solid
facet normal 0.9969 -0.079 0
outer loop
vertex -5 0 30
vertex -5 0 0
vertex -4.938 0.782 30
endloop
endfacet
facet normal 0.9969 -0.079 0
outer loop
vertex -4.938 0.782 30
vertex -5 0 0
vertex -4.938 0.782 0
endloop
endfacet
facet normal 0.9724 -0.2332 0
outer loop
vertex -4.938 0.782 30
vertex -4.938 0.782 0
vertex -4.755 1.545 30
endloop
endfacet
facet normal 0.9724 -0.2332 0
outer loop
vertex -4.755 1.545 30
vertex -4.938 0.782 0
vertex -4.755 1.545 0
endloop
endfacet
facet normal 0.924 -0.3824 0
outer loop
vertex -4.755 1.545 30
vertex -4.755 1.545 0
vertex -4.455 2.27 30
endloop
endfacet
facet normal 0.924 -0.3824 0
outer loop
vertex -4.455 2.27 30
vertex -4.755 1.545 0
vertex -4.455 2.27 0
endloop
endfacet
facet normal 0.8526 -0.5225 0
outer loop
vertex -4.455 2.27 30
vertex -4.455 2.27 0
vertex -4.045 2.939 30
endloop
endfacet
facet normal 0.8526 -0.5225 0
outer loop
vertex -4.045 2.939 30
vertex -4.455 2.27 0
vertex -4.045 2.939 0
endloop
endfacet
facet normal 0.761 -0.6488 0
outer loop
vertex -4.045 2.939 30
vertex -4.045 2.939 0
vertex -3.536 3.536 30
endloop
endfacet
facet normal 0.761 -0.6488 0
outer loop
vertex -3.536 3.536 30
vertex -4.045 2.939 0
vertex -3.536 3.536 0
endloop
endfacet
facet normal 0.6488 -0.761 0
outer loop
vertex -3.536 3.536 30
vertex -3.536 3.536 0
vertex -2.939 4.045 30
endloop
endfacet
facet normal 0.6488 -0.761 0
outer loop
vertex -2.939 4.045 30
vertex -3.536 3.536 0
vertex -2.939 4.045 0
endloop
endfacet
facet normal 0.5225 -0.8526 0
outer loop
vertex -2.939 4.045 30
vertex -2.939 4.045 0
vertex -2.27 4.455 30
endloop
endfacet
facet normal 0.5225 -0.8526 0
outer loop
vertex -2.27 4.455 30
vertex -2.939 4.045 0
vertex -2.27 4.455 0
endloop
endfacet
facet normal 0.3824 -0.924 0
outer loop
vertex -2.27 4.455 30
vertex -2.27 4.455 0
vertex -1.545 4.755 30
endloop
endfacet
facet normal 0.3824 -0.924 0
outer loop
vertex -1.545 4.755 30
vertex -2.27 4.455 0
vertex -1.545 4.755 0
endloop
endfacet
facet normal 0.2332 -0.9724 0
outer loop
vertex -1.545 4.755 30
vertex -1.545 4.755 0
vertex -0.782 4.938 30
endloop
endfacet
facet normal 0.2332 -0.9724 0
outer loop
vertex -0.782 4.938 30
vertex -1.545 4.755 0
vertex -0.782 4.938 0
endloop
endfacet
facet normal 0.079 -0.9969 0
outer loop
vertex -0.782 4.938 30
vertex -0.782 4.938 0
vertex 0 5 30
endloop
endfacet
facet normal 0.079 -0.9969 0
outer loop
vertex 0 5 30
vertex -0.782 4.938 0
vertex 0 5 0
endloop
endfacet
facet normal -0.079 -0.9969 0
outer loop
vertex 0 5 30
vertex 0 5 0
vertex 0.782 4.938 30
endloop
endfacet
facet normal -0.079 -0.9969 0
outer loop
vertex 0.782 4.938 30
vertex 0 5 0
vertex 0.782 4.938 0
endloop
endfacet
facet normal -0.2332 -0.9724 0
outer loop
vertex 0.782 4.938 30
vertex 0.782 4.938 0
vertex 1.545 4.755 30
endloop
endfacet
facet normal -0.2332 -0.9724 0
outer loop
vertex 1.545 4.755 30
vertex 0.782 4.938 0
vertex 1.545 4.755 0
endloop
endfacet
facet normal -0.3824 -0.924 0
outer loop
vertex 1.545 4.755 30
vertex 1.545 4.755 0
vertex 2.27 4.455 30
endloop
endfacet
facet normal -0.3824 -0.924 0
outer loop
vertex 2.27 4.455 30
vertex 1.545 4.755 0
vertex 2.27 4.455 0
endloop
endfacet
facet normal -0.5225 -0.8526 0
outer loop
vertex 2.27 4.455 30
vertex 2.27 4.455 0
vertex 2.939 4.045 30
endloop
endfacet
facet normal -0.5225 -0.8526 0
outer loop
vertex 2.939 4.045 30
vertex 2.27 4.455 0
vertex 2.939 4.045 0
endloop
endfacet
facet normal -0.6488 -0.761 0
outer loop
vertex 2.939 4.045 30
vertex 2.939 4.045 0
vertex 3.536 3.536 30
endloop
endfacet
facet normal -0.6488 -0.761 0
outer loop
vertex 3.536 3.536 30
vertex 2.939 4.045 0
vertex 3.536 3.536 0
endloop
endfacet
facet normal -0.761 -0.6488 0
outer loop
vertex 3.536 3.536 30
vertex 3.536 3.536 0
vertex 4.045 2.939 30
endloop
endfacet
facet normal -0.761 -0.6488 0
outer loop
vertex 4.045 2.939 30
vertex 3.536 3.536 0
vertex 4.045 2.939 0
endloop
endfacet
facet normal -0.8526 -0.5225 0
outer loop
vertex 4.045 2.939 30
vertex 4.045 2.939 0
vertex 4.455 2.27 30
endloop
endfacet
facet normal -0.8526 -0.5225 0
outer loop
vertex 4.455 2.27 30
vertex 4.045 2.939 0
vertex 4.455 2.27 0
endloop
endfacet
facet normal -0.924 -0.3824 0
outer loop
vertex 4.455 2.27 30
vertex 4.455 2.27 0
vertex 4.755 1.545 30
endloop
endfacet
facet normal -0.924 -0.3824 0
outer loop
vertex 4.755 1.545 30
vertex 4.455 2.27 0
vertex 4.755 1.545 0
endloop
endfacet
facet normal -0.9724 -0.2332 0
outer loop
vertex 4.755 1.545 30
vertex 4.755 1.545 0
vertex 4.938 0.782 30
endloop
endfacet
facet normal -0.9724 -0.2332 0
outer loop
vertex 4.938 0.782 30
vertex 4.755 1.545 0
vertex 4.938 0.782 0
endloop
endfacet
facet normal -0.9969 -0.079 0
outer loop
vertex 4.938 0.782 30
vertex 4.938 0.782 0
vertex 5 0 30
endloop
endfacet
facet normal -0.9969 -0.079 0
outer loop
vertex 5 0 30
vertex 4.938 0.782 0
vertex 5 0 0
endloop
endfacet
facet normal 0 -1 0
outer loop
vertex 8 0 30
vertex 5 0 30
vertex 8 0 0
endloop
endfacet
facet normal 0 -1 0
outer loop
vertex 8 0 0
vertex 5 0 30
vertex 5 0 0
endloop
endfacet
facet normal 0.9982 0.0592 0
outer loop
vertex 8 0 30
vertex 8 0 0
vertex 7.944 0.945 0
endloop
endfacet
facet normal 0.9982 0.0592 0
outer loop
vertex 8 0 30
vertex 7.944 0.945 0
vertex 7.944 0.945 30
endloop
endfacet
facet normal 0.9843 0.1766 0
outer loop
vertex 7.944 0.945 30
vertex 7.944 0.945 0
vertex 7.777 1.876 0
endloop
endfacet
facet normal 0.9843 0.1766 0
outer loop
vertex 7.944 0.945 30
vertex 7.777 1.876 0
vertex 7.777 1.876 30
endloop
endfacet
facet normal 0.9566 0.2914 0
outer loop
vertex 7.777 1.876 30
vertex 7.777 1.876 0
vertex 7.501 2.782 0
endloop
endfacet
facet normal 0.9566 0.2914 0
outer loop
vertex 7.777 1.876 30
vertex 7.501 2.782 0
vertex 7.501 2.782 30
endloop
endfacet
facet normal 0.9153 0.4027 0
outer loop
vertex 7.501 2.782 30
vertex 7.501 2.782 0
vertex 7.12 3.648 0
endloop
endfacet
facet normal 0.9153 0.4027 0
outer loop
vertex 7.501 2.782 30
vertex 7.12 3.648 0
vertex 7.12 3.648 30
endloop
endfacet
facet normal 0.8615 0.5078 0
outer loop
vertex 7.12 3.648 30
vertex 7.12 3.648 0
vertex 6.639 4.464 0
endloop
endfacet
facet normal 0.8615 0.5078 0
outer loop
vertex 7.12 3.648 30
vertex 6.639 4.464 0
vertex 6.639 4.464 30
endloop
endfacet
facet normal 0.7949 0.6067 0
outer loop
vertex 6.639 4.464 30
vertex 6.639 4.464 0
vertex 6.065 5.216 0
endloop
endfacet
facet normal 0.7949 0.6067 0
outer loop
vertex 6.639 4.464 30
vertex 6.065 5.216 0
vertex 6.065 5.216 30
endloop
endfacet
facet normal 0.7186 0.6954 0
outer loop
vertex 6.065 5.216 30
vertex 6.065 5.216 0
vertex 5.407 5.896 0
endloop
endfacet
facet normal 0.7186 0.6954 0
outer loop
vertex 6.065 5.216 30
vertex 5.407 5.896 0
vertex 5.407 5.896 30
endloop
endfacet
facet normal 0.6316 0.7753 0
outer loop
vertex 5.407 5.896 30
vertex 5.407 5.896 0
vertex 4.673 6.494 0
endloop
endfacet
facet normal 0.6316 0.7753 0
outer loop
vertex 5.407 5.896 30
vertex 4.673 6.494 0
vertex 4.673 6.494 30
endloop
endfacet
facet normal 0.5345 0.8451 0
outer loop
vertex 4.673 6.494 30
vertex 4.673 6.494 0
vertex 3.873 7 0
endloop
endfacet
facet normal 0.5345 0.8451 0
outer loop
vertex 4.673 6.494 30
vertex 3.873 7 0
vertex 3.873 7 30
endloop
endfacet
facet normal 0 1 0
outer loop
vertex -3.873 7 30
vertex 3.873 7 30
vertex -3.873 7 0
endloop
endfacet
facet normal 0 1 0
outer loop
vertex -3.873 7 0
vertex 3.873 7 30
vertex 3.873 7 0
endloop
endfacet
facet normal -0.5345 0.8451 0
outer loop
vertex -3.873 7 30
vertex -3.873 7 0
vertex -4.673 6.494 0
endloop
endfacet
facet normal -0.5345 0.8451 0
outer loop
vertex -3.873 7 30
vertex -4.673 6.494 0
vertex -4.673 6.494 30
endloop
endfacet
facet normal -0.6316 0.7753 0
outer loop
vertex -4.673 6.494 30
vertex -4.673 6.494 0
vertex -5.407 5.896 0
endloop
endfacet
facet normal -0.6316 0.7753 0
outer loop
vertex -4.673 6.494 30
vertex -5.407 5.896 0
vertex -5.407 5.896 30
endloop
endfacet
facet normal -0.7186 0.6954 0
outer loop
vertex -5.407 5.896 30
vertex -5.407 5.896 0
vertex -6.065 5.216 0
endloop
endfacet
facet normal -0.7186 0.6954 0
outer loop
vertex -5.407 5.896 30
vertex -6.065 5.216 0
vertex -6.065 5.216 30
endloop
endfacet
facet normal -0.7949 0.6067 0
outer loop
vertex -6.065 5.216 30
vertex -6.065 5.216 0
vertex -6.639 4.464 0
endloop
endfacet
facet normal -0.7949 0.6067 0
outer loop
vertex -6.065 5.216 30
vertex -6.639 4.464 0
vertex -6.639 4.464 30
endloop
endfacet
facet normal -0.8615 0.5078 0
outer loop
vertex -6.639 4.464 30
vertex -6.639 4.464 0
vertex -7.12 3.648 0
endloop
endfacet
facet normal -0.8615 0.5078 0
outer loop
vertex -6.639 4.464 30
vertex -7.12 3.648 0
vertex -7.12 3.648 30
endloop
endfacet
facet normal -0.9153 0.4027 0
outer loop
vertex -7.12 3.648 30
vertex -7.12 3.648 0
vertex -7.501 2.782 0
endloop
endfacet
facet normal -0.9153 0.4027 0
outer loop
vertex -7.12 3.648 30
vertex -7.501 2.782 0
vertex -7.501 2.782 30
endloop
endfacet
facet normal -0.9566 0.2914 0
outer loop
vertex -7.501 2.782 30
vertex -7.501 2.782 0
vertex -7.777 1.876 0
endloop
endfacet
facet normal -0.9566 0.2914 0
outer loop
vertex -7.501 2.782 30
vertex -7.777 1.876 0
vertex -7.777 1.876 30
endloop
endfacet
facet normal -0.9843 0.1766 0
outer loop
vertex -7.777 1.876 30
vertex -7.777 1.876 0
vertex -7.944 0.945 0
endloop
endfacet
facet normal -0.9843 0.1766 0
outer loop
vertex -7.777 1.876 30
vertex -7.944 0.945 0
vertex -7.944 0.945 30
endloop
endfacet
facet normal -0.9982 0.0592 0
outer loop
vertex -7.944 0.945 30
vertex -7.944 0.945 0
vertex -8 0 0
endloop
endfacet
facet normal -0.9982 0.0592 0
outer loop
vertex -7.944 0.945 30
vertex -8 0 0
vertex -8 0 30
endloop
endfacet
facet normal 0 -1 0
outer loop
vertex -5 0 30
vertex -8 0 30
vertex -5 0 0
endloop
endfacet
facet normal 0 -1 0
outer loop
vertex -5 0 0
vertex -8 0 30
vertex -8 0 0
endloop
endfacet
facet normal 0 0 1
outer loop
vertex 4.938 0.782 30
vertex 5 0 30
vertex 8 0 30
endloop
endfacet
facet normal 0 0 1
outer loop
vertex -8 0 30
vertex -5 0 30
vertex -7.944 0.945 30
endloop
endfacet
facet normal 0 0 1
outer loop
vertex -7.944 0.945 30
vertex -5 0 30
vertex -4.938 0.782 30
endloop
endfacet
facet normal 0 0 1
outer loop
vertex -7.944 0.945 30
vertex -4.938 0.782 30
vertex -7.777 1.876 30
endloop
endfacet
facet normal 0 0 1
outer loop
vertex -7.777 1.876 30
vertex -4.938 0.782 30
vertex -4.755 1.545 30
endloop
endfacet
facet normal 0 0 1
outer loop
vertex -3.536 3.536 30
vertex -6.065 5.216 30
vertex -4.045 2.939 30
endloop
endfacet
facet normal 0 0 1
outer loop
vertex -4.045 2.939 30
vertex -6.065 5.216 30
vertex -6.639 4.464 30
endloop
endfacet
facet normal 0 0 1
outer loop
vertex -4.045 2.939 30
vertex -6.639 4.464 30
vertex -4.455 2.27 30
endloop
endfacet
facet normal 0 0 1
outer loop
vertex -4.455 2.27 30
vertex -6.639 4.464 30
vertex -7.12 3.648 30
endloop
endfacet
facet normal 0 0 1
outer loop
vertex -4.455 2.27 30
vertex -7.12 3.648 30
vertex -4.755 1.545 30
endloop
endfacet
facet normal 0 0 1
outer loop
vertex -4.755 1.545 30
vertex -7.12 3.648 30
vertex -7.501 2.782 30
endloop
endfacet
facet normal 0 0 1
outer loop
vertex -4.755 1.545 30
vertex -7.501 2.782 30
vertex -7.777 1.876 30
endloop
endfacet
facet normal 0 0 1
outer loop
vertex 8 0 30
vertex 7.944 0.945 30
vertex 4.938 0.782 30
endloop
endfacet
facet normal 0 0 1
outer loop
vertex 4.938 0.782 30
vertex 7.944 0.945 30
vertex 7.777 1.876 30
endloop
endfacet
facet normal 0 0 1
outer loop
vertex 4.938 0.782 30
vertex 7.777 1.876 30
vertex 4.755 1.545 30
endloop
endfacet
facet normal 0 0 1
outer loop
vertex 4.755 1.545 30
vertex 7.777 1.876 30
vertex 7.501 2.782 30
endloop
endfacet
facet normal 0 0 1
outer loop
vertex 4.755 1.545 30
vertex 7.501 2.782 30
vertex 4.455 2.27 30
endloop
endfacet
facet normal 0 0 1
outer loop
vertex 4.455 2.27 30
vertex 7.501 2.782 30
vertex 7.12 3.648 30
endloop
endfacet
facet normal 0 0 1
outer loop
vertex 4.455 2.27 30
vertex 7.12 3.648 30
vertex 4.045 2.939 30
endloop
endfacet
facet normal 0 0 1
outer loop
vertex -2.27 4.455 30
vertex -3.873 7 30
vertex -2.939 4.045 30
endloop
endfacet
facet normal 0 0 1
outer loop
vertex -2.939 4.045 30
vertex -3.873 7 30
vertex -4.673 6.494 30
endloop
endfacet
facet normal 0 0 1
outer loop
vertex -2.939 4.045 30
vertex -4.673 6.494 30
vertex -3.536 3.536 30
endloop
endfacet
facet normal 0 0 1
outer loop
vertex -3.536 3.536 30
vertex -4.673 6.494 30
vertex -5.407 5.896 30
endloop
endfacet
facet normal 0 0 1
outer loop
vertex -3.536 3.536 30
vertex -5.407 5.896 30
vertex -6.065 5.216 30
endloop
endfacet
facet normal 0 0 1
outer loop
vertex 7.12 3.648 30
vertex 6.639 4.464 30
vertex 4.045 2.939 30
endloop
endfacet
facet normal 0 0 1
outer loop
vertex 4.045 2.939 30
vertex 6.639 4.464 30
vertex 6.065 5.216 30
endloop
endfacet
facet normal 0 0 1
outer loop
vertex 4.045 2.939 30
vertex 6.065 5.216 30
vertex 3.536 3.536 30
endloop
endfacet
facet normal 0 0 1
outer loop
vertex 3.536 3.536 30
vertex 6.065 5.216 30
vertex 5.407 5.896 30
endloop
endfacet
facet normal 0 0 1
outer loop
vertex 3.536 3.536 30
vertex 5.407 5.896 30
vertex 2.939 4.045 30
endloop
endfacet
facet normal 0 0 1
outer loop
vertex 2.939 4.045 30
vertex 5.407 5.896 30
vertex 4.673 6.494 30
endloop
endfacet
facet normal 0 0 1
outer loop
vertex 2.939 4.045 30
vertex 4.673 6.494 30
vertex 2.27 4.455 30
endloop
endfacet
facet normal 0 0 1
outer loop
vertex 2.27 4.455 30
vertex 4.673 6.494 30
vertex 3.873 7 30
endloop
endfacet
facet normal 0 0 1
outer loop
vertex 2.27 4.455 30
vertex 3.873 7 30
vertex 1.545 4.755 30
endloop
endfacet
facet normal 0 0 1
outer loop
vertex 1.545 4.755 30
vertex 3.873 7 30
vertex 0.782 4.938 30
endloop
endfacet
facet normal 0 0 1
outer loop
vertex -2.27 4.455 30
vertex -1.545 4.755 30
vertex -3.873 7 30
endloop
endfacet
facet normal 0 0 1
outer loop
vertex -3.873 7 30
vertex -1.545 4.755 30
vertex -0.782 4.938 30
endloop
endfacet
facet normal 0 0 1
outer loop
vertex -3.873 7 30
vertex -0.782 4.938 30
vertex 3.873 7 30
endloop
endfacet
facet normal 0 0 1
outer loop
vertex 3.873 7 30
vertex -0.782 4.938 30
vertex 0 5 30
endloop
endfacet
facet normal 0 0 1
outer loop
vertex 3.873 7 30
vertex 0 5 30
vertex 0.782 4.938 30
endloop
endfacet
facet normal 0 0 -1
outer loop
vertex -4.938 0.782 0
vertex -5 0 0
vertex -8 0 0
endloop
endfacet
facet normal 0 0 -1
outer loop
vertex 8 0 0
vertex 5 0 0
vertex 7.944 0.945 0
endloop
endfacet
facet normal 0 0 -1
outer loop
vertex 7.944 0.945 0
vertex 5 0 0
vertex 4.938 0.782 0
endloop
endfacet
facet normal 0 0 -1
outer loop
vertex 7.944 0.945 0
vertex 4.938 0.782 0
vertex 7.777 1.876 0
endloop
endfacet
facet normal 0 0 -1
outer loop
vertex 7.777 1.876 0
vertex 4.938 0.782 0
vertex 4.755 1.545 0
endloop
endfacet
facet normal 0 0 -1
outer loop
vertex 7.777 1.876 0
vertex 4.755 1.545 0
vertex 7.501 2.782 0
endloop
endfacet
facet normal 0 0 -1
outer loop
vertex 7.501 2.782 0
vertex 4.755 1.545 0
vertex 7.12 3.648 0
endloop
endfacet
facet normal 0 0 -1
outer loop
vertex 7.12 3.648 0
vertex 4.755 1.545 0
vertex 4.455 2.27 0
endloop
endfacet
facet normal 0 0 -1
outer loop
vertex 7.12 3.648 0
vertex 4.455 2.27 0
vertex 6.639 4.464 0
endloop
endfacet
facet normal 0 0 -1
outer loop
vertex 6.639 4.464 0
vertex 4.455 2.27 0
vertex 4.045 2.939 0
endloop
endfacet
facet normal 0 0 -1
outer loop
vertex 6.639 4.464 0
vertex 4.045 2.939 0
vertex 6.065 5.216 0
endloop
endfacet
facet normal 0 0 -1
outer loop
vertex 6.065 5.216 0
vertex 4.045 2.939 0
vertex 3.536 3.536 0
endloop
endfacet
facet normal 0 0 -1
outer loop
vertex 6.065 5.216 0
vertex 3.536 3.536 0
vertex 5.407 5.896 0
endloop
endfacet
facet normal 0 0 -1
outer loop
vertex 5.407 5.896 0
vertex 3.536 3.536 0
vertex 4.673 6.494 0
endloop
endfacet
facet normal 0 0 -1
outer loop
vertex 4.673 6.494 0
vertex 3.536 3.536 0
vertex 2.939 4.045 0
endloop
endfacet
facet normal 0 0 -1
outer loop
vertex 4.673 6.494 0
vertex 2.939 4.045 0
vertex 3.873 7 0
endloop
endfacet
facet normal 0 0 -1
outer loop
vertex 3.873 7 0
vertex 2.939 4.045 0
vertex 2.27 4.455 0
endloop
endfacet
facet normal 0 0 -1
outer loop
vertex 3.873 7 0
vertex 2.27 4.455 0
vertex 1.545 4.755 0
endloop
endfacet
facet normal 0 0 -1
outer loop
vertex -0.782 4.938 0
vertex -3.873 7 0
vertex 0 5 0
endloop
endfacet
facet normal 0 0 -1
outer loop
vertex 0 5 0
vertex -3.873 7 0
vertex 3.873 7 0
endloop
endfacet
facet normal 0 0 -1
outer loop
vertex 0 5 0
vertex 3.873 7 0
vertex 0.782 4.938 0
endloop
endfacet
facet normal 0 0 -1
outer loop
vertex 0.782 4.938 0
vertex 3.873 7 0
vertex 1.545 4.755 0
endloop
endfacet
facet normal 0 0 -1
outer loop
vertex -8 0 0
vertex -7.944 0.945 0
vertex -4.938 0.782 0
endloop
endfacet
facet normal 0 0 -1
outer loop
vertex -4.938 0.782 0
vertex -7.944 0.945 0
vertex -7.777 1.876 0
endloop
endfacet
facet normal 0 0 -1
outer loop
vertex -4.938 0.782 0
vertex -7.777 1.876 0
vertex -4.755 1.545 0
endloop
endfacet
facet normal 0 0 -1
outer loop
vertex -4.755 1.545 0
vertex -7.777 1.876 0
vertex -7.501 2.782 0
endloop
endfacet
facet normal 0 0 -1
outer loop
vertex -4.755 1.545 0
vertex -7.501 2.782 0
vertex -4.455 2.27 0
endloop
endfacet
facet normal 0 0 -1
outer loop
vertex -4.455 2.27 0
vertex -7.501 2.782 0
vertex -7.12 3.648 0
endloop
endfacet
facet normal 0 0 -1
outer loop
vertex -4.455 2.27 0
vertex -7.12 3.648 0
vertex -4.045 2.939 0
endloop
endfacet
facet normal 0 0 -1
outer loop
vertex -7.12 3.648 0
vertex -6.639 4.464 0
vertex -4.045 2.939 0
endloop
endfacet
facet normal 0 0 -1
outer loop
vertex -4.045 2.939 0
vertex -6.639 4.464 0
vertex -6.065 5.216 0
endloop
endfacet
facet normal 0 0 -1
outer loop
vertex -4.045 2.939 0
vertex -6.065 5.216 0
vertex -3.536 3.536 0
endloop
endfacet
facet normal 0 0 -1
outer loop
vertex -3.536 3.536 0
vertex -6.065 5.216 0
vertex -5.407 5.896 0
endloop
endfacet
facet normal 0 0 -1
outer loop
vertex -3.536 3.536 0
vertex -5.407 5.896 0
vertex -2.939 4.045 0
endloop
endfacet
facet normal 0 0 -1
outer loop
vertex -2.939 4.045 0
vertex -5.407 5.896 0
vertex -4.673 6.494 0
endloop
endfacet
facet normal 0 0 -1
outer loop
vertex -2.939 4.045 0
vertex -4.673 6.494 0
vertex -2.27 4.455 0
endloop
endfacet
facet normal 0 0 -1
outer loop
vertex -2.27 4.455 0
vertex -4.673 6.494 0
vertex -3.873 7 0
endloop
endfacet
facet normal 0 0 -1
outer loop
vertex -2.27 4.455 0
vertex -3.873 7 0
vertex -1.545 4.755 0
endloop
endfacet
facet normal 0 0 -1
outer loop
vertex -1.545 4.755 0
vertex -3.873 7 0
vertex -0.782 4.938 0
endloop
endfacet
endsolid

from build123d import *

# Parameters (mm, degrees)
SALIENTE_EXTRUIR1_DEPTH = 30


with BuildPart() as part:
    # Croquis1 → Saliente-Extruir1 (new body)
    with BuildSketch(Plane.XY):
        with BuildLine():
            Line((-8, 0), (-5, 0))
            ThreePointArc((-5, 0), (0, 5), (5, 0))
            Line((5, 0), (8, 0))
            ThreePointArc((8, 0), (6.891439137, 4.063012013), (3.872983346, 7))
            Line((3.872983346, 7), (-3.872983346, 7))
            ThreePointArc((-3.872983346, 7), (-6.891439137, 4.063012013), (-8, 0))
        make_face()
    extrude(amount=SALIENTE_EXTRUIR1_DEPTH)


solid = part.part
